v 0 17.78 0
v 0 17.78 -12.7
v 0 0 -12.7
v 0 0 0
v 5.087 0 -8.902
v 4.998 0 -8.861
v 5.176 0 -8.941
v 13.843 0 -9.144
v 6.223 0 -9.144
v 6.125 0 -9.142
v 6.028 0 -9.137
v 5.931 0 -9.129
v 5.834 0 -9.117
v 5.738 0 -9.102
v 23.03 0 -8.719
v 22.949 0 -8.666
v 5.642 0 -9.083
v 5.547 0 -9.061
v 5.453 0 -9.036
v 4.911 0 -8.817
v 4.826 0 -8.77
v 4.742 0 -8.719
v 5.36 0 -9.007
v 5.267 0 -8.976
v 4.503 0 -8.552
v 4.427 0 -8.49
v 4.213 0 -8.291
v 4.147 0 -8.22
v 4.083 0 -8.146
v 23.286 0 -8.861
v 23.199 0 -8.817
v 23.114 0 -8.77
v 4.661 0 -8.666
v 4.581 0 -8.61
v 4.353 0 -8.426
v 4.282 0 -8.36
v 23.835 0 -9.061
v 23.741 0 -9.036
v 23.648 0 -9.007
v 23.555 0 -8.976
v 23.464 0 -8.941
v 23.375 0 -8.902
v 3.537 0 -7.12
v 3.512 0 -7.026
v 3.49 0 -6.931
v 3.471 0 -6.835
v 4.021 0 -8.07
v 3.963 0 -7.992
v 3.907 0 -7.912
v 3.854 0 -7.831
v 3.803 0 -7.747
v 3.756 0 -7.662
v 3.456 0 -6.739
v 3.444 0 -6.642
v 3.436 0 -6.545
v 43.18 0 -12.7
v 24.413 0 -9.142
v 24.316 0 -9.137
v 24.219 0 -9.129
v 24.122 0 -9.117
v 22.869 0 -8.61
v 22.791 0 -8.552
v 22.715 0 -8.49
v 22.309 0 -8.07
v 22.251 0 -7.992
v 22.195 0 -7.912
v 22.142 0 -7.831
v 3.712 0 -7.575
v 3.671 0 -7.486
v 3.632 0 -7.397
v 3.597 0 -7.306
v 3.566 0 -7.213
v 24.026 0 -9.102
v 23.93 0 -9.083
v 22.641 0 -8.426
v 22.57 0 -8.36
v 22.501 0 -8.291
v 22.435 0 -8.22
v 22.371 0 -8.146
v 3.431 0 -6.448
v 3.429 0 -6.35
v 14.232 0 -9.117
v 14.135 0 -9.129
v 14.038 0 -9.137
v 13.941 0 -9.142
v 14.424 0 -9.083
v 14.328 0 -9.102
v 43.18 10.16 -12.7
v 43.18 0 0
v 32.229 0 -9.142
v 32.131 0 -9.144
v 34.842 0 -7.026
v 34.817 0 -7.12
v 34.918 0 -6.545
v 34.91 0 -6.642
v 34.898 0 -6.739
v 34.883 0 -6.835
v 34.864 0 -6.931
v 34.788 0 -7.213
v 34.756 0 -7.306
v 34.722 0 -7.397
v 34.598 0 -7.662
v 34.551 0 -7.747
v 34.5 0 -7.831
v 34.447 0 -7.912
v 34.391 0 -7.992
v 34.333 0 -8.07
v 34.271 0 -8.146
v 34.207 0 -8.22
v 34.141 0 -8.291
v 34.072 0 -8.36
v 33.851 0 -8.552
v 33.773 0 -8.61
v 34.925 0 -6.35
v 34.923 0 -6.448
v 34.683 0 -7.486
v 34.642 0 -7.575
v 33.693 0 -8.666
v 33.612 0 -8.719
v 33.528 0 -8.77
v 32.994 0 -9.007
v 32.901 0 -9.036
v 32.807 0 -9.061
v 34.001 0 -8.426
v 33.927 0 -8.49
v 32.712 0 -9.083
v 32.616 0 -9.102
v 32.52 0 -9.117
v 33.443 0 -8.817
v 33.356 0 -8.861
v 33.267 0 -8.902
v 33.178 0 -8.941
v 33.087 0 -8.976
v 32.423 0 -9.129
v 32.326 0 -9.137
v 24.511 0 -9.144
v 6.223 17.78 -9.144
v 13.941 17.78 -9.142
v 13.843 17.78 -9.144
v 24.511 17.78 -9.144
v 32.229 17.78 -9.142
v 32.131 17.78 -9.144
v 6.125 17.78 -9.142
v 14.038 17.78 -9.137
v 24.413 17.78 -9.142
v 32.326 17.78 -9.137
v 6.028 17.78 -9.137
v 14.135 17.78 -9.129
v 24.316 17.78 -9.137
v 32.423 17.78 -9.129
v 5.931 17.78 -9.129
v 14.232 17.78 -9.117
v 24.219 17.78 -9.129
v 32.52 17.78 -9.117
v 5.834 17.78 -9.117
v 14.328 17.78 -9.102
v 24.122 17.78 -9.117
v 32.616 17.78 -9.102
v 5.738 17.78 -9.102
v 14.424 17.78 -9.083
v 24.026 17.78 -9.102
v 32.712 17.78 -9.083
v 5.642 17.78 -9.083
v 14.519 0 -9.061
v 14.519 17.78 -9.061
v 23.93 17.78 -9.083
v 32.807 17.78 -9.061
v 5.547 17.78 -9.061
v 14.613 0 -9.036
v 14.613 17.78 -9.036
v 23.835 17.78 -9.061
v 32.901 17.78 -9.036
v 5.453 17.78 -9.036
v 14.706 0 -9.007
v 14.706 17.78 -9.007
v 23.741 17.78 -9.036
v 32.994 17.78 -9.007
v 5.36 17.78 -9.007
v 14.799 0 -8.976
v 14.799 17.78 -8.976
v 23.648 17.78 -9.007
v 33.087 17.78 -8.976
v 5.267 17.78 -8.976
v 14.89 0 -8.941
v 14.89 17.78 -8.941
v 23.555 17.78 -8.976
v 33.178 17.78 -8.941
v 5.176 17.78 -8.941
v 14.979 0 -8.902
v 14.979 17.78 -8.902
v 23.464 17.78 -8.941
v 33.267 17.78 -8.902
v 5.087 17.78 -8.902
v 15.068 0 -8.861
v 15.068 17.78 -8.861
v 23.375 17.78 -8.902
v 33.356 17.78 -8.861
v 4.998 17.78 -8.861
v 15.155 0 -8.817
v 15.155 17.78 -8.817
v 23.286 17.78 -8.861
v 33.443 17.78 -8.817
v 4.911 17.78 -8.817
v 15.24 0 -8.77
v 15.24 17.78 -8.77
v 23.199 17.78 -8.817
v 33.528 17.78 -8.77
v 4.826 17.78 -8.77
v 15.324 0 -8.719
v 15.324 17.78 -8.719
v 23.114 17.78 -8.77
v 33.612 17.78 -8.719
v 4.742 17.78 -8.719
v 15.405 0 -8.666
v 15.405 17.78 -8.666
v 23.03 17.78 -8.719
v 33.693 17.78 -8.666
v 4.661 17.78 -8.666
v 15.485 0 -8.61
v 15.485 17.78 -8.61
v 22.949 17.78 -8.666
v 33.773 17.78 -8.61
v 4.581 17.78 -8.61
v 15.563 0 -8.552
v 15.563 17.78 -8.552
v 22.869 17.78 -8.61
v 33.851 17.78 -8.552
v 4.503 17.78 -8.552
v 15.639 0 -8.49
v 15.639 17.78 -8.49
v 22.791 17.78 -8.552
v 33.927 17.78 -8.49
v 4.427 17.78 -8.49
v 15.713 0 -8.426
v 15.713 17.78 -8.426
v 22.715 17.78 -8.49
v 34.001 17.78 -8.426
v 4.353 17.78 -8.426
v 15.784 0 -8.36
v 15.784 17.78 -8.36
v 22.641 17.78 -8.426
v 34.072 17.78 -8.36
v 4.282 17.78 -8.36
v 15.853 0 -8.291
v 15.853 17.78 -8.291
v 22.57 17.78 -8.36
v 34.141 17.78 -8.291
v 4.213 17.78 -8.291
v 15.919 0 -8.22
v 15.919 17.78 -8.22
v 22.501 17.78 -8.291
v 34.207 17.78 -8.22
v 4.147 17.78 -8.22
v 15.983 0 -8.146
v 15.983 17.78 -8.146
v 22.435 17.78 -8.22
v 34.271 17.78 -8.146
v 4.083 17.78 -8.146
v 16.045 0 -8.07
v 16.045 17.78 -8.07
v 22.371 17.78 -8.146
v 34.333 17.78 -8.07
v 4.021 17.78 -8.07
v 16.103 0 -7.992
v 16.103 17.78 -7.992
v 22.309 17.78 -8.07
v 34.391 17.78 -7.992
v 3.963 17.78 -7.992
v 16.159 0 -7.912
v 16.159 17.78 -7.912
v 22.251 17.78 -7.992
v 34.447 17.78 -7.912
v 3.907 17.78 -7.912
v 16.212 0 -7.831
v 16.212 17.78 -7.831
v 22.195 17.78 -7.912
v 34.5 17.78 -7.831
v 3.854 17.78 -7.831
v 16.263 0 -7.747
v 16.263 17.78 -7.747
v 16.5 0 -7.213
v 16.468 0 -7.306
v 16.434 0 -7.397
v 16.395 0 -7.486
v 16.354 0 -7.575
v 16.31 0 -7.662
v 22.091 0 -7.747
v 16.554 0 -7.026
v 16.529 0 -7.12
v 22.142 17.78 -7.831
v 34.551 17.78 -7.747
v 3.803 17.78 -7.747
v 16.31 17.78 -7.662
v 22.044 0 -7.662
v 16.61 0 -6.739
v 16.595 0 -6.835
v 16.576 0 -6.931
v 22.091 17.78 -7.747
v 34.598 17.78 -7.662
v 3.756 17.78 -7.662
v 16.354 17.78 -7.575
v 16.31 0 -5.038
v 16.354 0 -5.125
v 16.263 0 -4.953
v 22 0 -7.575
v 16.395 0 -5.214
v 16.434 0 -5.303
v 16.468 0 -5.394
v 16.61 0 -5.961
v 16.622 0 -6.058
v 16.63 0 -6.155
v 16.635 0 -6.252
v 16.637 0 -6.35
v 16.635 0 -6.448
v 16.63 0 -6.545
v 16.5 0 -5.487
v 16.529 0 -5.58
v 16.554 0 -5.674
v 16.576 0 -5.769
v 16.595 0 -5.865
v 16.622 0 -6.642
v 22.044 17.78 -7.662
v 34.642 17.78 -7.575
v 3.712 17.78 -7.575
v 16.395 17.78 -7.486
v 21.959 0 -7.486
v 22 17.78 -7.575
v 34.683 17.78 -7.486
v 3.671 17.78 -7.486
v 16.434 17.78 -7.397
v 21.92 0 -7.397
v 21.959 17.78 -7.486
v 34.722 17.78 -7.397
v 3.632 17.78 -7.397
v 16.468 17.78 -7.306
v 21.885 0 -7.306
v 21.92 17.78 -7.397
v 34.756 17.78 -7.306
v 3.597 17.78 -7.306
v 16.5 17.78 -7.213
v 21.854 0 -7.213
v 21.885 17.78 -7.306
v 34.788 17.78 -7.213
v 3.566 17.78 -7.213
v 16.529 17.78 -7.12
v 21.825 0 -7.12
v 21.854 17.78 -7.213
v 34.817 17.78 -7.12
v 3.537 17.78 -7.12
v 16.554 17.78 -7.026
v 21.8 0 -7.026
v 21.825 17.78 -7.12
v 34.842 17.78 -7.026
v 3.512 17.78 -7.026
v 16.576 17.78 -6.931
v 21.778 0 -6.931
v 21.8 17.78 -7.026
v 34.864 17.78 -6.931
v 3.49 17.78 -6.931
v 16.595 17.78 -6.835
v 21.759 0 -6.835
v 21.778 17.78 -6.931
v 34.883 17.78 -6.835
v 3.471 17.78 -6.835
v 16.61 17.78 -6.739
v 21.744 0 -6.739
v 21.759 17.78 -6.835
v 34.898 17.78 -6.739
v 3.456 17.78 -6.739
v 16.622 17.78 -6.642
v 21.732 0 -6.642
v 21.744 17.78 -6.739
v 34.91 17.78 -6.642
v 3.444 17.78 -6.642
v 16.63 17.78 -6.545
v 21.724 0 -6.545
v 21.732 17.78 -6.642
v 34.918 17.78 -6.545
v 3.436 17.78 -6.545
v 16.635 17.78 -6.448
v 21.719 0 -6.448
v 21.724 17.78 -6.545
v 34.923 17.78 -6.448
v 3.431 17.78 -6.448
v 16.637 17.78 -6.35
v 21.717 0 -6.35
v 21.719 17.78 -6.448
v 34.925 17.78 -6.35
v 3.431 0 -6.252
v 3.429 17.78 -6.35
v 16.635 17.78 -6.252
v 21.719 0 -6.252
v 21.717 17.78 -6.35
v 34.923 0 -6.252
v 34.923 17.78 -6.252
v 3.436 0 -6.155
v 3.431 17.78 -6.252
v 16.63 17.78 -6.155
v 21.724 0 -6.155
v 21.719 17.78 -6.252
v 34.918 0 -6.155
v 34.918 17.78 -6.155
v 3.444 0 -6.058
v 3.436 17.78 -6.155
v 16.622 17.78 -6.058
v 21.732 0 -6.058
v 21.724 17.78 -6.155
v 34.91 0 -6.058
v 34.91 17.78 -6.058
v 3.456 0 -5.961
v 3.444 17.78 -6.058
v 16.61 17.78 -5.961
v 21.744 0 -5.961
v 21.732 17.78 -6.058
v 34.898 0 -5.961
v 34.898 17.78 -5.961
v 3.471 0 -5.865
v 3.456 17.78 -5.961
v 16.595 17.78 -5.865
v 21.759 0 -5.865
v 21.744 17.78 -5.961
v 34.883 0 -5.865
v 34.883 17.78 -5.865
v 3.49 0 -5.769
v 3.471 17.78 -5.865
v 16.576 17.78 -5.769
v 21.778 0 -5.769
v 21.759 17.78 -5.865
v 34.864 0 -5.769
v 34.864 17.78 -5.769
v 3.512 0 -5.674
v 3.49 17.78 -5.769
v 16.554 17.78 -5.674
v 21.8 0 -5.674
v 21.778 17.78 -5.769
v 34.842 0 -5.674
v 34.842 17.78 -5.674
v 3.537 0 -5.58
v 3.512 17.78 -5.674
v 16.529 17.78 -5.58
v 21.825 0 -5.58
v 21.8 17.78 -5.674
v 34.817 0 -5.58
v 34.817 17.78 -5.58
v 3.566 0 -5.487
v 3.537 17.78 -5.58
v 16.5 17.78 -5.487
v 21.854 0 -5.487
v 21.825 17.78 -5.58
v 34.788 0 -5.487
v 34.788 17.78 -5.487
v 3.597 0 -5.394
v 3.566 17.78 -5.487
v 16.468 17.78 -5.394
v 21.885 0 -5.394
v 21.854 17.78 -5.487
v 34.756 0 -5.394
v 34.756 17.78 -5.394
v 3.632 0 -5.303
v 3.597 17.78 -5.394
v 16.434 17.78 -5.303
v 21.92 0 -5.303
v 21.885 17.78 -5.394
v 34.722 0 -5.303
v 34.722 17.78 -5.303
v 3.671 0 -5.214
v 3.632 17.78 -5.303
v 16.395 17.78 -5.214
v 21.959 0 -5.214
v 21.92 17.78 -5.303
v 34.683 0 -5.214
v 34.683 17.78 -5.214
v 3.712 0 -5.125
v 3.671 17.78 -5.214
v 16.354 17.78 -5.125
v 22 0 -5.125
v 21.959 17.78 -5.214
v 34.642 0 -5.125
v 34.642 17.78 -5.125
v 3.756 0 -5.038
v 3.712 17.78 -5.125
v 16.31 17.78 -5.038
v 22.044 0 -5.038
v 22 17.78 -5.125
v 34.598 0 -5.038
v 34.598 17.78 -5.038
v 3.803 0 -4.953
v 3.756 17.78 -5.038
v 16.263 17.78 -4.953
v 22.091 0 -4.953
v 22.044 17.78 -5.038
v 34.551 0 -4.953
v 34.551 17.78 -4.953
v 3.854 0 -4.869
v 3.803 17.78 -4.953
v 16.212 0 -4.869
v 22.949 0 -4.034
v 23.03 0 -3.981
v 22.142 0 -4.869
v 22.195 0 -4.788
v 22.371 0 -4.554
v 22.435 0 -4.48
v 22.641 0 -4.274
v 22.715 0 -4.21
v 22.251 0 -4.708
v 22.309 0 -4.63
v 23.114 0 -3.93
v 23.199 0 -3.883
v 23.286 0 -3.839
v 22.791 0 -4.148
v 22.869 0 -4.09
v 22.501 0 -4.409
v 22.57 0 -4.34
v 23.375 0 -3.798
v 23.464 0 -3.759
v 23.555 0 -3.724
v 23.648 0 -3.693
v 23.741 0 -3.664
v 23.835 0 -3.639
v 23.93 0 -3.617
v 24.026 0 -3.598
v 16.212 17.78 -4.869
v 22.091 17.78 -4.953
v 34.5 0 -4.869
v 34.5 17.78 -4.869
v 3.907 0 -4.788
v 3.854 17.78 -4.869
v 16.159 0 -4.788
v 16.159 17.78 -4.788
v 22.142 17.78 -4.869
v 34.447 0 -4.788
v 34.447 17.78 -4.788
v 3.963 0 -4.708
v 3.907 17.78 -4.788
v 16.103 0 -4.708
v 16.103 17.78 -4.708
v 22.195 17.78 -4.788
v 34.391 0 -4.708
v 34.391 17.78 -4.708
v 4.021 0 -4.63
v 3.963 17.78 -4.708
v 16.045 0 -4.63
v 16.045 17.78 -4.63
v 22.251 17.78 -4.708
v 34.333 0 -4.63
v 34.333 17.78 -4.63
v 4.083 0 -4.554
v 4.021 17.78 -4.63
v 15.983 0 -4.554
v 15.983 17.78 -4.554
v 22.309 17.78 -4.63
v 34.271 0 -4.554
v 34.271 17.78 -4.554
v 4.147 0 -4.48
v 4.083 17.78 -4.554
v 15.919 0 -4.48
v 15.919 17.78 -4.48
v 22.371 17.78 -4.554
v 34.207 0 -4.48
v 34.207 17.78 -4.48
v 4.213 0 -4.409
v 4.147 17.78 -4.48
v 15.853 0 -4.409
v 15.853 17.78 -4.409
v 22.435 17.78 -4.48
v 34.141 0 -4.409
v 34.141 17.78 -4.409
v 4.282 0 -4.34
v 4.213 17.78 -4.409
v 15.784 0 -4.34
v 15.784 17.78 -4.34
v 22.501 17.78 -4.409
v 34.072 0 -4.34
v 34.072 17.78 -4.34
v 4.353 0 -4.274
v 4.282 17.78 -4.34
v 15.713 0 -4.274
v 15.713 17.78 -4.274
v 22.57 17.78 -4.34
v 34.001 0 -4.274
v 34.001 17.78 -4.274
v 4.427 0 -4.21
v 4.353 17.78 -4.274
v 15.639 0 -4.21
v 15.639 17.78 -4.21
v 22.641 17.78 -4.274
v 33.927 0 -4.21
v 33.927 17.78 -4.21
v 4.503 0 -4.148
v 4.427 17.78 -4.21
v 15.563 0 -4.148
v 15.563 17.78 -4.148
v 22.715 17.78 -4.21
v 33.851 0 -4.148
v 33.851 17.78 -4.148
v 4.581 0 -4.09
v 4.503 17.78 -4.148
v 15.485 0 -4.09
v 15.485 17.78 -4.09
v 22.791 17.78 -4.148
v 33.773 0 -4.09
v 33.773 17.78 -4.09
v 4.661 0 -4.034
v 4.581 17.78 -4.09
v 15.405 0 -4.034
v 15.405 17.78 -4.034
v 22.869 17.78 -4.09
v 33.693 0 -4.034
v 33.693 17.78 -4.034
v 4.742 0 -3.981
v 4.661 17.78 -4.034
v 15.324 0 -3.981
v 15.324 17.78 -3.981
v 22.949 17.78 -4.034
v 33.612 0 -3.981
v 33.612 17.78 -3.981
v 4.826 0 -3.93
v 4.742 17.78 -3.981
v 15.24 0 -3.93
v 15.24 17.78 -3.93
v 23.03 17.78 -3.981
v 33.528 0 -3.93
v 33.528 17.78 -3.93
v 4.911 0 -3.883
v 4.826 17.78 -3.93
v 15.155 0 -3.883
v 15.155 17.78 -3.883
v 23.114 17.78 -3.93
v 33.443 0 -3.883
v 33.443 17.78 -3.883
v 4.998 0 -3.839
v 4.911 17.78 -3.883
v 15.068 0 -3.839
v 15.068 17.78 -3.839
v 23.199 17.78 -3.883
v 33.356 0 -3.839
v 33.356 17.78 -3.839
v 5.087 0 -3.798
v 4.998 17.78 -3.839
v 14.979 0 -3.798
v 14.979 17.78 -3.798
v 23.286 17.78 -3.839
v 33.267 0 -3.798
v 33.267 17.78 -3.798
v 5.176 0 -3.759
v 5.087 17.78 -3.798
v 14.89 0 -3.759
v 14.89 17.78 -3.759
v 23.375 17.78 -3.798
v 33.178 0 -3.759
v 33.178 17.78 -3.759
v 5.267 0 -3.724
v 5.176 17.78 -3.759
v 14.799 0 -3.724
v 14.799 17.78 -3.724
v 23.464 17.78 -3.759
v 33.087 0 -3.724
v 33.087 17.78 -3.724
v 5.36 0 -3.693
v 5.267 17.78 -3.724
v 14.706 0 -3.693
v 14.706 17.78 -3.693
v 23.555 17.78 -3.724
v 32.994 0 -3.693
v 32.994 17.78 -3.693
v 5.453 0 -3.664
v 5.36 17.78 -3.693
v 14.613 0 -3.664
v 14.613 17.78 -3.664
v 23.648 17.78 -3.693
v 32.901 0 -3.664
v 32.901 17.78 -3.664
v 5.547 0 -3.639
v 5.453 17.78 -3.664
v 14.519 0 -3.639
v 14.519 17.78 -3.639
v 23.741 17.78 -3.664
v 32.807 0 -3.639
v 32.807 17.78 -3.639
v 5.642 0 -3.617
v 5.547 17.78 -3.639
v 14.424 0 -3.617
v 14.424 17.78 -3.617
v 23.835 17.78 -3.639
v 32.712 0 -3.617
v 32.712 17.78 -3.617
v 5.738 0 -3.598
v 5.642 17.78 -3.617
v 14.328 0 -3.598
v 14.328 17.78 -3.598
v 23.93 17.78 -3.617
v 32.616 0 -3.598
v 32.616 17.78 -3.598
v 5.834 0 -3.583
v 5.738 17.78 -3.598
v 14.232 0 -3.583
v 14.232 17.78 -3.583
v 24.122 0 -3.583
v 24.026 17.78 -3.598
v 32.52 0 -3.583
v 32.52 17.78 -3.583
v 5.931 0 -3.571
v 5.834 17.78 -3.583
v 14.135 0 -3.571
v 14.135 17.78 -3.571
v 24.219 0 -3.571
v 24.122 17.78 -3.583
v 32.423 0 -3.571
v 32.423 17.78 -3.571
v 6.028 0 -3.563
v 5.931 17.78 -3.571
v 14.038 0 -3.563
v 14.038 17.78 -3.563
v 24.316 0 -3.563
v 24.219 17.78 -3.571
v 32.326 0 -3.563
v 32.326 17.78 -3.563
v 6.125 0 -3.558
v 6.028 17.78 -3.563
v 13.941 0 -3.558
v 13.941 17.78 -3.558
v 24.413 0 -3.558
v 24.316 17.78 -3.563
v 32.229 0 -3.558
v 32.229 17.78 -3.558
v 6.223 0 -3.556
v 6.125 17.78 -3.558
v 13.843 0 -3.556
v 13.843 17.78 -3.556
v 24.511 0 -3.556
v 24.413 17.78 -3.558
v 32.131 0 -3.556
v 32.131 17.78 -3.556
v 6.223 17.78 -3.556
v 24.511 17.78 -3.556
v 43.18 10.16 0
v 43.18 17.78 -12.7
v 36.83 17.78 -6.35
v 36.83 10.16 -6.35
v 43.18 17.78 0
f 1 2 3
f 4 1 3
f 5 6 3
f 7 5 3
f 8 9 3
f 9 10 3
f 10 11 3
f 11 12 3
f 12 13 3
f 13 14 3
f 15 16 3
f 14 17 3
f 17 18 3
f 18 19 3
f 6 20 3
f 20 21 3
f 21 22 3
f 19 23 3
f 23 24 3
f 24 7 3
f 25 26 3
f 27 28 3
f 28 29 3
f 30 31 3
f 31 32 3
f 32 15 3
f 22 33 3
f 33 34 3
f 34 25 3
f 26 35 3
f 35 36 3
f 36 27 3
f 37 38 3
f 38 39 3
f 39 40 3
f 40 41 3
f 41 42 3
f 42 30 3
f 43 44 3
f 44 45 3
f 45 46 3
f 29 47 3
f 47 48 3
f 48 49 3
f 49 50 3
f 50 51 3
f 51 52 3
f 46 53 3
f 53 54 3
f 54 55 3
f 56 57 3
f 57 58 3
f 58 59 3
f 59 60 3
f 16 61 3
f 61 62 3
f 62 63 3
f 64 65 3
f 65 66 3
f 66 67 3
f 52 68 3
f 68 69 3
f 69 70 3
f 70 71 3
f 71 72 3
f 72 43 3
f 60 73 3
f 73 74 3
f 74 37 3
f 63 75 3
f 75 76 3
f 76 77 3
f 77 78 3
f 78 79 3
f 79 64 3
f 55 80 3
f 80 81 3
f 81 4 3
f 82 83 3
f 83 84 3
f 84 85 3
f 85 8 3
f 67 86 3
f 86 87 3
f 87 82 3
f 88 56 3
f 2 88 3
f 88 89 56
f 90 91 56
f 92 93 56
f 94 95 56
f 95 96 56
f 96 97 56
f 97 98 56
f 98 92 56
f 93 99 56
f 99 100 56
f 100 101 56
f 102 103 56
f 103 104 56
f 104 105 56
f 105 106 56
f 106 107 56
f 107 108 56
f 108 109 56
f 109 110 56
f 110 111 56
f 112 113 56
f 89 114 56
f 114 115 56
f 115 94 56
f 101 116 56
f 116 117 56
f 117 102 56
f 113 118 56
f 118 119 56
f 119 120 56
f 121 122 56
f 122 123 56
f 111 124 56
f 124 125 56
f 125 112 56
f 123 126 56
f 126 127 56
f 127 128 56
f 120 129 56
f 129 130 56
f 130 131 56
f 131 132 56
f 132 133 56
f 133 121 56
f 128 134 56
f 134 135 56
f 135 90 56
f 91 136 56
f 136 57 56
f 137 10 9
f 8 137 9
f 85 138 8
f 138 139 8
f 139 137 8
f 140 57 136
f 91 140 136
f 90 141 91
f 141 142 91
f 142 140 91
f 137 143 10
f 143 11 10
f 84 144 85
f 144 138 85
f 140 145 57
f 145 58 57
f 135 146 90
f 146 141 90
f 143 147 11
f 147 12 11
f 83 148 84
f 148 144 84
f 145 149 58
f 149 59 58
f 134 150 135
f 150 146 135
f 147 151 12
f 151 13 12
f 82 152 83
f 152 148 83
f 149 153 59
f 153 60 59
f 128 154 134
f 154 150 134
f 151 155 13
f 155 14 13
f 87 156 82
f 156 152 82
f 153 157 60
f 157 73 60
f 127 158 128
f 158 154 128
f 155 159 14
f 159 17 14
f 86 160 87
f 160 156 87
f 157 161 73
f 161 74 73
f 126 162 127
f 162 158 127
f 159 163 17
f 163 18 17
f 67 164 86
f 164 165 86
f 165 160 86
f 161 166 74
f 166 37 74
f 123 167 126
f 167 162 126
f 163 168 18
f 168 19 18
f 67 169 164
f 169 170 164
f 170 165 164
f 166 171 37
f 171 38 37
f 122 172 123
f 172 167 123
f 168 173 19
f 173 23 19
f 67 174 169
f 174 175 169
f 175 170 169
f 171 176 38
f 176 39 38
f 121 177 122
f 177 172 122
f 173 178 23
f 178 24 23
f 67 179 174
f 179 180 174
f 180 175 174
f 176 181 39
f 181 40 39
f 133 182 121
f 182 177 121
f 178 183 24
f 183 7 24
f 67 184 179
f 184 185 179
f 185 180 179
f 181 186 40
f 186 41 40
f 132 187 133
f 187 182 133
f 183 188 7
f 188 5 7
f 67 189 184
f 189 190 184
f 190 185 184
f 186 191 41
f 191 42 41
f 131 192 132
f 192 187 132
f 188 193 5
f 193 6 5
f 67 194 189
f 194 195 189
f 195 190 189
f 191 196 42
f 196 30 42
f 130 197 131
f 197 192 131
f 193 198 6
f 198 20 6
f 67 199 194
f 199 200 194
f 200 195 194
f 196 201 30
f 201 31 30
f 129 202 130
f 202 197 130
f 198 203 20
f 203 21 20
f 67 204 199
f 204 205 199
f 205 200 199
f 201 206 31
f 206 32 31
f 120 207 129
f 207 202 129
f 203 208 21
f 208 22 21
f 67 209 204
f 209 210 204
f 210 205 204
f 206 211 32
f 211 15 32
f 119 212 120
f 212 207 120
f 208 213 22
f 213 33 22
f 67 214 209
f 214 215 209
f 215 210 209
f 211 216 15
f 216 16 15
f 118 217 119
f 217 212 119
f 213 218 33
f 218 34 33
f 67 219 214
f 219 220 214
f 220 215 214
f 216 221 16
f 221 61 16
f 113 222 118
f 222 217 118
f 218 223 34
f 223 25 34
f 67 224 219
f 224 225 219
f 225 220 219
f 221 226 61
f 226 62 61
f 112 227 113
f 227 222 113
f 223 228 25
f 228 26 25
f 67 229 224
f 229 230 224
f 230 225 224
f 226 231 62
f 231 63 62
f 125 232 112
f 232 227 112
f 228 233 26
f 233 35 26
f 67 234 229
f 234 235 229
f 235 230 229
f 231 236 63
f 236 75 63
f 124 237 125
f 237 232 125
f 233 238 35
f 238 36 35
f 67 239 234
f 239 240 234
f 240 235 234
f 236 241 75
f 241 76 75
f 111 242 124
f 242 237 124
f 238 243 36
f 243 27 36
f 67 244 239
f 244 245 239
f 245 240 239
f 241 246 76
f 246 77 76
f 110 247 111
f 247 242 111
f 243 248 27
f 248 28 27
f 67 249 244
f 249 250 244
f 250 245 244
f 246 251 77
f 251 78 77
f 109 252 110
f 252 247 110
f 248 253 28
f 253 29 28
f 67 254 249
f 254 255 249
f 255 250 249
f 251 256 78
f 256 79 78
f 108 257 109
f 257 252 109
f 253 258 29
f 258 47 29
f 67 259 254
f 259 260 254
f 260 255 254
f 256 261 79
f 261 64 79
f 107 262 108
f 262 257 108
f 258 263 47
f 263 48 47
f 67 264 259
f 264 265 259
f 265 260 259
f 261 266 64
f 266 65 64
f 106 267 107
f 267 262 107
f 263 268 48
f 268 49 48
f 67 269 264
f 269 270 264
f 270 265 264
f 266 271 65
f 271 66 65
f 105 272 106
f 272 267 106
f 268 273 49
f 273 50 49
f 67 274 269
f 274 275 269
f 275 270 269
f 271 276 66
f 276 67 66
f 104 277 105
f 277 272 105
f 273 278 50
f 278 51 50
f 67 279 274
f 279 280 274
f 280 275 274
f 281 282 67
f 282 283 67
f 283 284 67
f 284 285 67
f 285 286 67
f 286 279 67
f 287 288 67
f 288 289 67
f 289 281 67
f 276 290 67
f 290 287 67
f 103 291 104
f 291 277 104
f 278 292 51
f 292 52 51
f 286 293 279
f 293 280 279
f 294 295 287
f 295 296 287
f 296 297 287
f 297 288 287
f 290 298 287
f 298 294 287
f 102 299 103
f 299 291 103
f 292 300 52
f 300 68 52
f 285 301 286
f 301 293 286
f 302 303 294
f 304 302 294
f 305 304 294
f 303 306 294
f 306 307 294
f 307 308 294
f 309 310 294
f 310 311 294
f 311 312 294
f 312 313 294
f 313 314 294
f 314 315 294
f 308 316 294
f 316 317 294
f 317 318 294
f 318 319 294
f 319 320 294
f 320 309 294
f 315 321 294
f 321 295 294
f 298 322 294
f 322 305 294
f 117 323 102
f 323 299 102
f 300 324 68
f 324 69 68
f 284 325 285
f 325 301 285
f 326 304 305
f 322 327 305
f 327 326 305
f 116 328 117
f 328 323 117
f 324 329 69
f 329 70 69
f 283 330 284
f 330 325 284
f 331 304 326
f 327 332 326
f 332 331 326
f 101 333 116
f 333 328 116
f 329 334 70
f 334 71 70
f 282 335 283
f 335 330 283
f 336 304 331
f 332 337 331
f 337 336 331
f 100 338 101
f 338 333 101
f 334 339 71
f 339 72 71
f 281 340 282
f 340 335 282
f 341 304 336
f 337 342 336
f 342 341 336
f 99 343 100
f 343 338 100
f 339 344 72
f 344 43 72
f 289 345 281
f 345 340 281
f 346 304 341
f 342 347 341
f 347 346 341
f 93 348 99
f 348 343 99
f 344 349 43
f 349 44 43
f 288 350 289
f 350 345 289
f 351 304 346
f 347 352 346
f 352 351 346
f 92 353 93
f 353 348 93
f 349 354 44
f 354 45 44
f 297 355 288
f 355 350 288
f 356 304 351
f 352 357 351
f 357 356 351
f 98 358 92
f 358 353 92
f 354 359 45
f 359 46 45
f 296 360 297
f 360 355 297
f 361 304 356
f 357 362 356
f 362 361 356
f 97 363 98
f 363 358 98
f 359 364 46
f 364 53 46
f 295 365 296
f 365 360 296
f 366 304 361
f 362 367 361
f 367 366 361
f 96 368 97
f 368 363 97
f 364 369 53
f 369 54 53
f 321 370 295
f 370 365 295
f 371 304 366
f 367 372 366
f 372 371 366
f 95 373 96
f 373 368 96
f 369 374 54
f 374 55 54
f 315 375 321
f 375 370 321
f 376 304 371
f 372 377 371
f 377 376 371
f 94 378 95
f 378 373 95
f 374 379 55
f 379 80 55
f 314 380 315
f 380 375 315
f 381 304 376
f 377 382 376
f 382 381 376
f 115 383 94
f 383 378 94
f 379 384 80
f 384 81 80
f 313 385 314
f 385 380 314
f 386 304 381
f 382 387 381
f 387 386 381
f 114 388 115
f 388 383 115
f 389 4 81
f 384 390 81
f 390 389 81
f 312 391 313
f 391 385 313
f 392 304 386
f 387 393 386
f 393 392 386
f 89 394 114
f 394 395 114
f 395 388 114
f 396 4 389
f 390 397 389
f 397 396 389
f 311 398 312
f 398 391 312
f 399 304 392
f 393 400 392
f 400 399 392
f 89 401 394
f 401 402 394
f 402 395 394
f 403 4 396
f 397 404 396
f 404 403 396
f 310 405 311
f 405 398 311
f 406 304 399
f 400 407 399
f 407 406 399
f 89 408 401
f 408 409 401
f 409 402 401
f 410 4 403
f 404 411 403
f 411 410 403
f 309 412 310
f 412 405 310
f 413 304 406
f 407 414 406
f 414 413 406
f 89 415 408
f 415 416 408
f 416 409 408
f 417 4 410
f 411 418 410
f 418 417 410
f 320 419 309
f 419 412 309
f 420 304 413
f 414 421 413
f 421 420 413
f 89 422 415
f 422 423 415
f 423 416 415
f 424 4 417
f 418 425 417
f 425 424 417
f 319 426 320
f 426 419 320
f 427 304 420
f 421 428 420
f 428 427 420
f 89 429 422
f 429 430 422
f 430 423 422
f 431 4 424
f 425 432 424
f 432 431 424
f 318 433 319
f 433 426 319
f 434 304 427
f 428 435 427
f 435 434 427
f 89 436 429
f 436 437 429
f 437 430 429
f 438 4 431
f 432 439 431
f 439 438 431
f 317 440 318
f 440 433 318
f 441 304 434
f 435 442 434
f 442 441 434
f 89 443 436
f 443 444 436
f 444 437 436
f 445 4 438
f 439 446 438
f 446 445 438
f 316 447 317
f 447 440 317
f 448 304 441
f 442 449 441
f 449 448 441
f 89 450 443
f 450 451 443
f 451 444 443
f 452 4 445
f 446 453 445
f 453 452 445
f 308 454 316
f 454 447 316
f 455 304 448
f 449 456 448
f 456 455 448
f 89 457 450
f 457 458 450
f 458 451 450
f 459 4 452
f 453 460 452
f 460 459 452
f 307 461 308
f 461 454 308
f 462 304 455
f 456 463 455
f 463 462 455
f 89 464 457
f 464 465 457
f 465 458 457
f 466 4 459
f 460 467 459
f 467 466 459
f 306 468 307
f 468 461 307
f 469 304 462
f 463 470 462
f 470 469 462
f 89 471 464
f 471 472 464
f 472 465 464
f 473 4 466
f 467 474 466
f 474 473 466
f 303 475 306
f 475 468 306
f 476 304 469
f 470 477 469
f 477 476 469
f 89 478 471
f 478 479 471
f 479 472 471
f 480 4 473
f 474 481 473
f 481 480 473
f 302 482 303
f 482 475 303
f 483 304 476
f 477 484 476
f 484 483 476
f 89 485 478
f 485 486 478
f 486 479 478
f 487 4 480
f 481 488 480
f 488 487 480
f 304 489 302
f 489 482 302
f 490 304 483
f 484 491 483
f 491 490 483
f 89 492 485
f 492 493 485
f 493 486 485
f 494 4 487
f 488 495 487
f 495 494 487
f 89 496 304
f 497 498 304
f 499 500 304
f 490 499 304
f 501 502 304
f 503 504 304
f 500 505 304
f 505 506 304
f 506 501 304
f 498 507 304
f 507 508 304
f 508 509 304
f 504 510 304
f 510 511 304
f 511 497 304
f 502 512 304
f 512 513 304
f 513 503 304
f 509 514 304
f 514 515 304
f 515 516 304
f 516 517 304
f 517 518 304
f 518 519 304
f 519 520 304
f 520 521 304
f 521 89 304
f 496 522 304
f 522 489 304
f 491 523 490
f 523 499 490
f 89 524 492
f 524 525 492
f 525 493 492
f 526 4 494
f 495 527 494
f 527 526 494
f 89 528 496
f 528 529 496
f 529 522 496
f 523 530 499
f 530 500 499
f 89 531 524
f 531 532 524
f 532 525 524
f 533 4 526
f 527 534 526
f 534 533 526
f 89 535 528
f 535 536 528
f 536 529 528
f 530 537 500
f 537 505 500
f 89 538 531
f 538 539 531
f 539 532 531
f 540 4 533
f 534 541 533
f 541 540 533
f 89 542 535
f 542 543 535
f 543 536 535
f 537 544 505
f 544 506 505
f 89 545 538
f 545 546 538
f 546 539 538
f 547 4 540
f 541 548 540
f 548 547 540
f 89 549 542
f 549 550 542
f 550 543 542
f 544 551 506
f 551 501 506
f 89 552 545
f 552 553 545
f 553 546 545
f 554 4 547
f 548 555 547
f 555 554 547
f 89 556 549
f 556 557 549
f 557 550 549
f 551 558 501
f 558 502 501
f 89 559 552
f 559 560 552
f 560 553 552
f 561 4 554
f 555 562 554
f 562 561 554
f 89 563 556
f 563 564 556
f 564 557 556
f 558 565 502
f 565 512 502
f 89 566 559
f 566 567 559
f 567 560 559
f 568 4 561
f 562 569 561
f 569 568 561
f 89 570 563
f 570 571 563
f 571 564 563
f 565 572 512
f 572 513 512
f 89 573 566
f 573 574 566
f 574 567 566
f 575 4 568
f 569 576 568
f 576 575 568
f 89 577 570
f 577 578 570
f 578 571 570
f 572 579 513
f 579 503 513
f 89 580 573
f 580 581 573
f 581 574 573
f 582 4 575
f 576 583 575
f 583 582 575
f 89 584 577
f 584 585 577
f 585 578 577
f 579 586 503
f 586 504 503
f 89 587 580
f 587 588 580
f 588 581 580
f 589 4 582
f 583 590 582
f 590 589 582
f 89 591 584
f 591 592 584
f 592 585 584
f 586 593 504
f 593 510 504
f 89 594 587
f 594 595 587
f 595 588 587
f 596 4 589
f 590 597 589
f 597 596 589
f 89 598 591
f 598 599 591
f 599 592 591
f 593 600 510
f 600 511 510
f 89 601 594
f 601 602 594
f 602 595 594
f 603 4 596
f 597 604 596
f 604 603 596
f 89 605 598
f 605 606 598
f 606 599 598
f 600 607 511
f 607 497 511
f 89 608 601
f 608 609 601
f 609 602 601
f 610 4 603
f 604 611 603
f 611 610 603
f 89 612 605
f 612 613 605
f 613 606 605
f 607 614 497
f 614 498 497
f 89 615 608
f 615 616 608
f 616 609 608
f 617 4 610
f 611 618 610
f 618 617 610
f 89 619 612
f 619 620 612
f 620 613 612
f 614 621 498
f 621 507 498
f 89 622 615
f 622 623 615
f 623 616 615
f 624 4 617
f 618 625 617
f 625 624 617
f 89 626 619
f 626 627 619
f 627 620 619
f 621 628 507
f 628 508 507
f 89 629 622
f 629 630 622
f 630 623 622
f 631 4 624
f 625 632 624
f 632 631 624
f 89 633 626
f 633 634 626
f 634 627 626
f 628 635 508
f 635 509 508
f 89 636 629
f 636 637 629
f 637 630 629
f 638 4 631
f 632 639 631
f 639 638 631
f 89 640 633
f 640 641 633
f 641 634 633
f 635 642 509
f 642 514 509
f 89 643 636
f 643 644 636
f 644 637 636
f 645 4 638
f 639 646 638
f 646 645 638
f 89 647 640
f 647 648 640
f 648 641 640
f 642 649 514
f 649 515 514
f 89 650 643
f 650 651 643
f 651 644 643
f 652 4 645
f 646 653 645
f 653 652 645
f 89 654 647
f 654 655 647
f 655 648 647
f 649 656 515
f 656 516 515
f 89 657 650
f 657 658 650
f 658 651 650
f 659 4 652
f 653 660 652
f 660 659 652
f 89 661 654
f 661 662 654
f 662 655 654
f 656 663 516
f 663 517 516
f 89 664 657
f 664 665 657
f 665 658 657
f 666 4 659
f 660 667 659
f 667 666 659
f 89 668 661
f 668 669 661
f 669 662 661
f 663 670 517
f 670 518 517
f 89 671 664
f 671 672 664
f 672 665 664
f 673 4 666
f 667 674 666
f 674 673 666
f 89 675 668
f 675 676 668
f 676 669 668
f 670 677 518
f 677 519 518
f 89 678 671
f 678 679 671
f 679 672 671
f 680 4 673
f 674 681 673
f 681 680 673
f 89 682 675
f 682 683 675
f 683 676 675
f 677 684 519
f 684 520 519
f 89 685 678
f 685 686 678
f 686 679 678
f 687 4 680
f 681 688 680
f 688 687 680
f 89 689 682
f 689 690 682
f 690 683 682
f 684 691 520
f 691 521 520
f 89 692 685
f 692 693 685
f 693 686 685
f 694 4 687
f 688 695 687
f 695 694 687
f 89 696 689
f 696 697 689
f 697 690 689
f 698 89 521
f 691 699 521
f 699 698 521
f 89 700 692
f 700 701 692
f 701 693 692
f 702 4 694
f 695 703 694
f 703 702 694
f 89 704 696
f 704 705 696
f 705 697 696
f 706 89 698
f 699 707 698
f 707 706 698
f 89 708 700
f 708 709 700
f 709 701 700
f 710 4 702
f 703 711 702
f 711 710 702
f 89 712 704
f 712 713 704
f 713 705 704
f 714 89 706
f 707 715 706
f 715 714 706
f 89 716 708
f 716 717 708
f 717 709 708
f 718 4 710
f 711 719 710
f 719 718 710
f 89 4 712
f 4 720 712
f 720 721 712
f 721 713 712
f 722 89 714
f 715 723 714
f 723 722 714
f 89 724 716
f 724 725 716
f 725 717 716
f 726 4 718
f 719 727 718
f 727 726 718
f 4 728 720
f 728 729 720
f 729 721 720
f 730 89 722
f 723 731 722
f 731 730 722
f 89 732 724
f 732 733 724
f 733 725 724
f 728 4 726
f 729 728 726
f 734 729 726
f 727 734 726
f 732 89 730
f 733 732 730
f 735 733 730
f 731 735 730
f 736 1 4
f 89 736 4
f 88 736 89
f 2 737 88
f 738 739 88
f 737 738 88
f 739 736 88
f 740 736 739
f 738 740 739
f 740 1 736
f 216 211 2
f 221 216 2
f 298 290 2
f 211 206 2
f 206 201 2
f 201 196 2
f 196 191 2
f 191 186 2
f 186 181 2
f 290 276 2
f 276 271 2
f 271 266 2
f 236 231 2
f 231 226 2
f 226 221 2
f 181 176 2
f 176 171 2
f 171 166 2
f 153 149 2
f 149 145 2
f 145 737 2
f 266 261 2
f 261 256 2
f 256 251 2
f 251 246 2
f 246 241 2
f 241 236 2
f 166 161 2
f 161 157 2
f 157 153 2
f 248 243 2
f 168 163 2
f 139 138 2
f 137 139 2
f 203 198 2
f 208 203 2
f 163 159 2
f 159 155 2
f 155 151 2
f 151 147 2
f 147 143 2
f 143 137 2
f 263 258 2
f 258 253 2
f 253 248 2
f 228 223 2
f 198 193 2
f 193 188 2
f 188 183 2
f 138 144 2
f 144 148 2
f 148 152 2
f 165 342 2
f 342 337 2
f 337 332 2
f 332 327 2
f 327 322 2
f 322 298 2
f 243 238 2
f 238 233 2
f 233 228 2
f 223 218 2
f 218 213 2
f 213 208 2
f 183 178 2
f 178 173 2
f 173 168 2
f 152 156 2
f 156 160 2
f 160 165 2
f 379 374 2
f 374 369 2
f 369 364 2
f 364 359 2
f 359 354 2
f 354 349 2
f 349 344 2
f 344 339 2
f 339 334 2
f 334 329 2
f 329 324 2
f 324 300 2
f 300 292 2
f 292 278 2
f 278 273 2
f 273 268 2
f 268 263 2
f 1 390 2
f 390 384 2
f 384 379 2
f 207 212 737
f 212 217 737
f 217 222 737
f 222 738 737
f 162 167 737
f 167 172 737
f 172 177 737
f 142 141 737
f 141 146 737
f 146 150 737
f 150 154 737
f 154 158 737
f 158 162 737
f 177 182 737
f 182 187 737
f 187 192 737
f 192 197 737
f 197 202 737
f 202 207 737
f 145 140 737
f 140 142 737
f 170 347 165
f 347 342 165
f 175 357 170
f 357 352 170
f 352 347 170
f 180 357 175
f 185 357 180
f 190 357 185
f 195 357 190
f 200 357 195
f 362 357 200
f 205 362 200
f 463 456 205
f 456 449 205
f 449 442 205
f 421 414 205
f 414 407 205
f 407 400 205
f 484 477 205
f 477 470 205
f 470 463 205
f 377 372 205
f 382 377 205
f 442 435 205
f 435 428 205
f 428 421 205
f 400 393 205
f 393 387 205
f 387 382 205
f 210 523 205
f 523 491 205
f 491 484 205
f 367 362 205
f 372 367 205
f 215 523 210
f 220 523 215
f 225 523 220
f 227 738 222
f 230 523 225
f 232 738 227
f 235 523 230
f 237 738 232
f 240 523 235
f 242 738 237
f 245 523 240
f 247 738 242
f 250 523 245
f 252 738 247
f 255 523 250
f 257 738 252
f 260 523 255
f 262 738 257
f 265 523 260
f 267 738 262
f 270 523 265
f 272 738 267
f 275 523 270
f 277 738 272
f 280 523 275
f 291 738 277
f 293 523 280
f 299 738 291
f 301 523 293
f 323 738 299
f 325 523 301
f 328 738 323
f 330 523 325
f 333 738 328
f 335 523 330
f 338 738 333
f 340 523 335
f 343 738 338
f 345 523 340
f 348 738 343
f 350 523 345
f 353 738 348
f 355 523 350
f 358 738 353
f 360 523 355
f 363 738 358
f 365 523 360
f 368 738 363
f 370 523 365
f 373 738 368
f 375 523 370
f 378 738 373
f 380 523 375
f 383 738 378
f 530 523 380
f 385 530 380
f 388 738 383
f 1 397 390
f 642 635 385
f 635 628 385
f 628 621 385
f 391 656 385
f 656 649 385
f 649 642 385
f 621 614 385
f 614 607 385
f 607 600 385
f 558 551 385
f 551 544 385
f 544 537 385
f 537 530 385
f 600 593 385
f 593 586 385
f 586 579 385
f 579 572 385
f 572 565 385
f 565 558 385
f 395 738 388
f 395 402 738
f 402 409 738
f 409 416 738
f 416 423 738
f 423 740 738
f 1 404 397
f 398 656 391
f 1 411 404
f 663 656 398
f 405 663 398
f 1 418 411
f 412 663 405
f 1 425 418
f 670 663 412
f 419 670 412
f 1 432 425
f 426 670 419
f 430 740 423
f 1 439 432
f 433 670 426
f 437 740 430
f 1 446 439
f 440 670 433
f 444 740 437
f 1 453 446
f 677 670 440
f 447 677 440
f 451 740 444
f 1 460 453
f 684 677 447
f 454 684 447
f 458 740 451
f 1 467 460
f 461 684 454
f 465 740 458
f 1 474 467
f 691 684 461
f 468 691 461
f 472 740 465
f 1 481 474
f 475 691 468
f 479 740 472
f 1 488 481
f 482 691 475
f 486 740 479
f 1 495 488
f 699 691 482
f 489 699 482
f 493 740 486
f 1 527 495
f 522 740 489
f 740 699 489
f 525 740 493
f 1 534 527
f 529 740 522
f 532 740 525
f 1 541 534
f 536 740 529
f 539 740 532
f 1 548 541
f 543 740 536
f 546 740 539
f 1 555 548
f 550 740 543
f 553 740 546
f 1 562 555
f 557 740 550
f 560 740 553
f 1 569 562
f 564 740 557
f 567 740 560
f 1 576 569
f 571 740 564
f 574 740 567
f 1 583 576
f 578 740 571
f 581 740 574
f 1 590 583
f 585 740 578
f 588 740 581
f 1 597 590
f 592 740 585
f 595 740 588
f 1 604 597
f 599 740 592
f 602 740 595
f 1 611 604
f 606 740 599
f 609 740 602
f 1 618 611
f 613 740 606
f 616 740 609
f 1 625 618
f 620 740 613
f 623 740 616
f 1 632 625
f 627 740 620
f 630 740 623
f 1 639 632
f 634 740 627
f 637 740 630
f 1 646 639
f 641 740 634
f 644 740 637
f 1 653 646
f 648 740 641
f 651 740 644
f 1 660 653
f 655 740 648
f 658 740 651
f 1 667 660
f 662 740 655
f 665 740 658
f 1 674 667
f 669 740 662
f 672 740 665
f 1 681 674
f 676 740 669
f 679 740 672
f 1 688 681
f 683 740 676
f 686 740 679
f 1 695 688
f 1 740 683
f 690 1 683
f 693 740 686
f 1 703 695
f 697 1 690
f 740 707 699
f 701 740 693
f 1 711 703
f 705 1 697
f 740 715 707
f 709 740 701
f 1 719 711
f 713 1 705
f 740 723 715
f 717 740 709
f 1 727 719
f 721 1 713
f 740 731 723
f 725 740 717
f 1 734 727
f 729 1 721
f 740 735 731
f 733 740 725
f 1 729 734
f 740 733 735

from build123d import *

# Parameters (mm, degrees)
SKETCH1_W           = 43.18
SKETCH1_H           = 17.78
BOSS_EXTRUDE1_DEPTH = 12.7
CUT_EXTRUDE1_DEPTH  = 7.62
CUT_EXTRUDE2_DEPTH  = 49.393499563


with BuildPart() as part:
    # Sketch1 → Boss-Extrude1 (new body)
    with BuildSketch(Plane.XY):
        with Locations((21.59, 8.89)):
            Rectangle(SKETCH1_W, SKETCH1_H)
    extrude(amount=-BOSS_EXTRUDE1_DEPTH)

    # Sketch3 → Cut-Extrude1 (cut)
    with BuildSketch(Plane(origin=(0, 17.78, 0), x_dir=(1, 0, 0), z_dir=(0, 1, 0))):
        Polygon((43.18, 12.7), (36.83, 6.35), (43.18, 0), align=None)
    extrude(amount=-CUT_EXTRUDE1_DEPTH, mode=Mode.SUBTRACT)

    # Sketch4 → Cut-Extrude2 (cut, through all)
    with BuildSketch(Plane(origin=(0, 17.78, 0), x_dir=(1, 0, 0), z_dir=(0, 1, 0))):
        with BuildLine():
            Line((32.131, 3.556), (24.511, 3.556))
            ThreePointArc((24.511, 3.556), (21.717, 6.35), (24.511, 9.144))
            Line((24.511, 9.144), (32.131, 9.144))
            ThreePointArc((32.131, 9.144), (34.925, 6.35), (32.131, 3.556))
        make_face()
        with BuildLine():
            Line((13.843, 3.556), (6.223, 3.556))
            ThreePointArc((6.223, 3.556), (3.429, 6.35), (6.223, 9.144))
            Line((6.223, 9.144), (13.843, 9.144))
            ThreePointArc((13.843, 9.144), (16.637, 6.35), (13.843, 3.556))
        make_face()
    extrude(amount=-CUT_EXTRUDE2_DEPTH, mode=Mode.SUBTRACT)


solid = part.part
